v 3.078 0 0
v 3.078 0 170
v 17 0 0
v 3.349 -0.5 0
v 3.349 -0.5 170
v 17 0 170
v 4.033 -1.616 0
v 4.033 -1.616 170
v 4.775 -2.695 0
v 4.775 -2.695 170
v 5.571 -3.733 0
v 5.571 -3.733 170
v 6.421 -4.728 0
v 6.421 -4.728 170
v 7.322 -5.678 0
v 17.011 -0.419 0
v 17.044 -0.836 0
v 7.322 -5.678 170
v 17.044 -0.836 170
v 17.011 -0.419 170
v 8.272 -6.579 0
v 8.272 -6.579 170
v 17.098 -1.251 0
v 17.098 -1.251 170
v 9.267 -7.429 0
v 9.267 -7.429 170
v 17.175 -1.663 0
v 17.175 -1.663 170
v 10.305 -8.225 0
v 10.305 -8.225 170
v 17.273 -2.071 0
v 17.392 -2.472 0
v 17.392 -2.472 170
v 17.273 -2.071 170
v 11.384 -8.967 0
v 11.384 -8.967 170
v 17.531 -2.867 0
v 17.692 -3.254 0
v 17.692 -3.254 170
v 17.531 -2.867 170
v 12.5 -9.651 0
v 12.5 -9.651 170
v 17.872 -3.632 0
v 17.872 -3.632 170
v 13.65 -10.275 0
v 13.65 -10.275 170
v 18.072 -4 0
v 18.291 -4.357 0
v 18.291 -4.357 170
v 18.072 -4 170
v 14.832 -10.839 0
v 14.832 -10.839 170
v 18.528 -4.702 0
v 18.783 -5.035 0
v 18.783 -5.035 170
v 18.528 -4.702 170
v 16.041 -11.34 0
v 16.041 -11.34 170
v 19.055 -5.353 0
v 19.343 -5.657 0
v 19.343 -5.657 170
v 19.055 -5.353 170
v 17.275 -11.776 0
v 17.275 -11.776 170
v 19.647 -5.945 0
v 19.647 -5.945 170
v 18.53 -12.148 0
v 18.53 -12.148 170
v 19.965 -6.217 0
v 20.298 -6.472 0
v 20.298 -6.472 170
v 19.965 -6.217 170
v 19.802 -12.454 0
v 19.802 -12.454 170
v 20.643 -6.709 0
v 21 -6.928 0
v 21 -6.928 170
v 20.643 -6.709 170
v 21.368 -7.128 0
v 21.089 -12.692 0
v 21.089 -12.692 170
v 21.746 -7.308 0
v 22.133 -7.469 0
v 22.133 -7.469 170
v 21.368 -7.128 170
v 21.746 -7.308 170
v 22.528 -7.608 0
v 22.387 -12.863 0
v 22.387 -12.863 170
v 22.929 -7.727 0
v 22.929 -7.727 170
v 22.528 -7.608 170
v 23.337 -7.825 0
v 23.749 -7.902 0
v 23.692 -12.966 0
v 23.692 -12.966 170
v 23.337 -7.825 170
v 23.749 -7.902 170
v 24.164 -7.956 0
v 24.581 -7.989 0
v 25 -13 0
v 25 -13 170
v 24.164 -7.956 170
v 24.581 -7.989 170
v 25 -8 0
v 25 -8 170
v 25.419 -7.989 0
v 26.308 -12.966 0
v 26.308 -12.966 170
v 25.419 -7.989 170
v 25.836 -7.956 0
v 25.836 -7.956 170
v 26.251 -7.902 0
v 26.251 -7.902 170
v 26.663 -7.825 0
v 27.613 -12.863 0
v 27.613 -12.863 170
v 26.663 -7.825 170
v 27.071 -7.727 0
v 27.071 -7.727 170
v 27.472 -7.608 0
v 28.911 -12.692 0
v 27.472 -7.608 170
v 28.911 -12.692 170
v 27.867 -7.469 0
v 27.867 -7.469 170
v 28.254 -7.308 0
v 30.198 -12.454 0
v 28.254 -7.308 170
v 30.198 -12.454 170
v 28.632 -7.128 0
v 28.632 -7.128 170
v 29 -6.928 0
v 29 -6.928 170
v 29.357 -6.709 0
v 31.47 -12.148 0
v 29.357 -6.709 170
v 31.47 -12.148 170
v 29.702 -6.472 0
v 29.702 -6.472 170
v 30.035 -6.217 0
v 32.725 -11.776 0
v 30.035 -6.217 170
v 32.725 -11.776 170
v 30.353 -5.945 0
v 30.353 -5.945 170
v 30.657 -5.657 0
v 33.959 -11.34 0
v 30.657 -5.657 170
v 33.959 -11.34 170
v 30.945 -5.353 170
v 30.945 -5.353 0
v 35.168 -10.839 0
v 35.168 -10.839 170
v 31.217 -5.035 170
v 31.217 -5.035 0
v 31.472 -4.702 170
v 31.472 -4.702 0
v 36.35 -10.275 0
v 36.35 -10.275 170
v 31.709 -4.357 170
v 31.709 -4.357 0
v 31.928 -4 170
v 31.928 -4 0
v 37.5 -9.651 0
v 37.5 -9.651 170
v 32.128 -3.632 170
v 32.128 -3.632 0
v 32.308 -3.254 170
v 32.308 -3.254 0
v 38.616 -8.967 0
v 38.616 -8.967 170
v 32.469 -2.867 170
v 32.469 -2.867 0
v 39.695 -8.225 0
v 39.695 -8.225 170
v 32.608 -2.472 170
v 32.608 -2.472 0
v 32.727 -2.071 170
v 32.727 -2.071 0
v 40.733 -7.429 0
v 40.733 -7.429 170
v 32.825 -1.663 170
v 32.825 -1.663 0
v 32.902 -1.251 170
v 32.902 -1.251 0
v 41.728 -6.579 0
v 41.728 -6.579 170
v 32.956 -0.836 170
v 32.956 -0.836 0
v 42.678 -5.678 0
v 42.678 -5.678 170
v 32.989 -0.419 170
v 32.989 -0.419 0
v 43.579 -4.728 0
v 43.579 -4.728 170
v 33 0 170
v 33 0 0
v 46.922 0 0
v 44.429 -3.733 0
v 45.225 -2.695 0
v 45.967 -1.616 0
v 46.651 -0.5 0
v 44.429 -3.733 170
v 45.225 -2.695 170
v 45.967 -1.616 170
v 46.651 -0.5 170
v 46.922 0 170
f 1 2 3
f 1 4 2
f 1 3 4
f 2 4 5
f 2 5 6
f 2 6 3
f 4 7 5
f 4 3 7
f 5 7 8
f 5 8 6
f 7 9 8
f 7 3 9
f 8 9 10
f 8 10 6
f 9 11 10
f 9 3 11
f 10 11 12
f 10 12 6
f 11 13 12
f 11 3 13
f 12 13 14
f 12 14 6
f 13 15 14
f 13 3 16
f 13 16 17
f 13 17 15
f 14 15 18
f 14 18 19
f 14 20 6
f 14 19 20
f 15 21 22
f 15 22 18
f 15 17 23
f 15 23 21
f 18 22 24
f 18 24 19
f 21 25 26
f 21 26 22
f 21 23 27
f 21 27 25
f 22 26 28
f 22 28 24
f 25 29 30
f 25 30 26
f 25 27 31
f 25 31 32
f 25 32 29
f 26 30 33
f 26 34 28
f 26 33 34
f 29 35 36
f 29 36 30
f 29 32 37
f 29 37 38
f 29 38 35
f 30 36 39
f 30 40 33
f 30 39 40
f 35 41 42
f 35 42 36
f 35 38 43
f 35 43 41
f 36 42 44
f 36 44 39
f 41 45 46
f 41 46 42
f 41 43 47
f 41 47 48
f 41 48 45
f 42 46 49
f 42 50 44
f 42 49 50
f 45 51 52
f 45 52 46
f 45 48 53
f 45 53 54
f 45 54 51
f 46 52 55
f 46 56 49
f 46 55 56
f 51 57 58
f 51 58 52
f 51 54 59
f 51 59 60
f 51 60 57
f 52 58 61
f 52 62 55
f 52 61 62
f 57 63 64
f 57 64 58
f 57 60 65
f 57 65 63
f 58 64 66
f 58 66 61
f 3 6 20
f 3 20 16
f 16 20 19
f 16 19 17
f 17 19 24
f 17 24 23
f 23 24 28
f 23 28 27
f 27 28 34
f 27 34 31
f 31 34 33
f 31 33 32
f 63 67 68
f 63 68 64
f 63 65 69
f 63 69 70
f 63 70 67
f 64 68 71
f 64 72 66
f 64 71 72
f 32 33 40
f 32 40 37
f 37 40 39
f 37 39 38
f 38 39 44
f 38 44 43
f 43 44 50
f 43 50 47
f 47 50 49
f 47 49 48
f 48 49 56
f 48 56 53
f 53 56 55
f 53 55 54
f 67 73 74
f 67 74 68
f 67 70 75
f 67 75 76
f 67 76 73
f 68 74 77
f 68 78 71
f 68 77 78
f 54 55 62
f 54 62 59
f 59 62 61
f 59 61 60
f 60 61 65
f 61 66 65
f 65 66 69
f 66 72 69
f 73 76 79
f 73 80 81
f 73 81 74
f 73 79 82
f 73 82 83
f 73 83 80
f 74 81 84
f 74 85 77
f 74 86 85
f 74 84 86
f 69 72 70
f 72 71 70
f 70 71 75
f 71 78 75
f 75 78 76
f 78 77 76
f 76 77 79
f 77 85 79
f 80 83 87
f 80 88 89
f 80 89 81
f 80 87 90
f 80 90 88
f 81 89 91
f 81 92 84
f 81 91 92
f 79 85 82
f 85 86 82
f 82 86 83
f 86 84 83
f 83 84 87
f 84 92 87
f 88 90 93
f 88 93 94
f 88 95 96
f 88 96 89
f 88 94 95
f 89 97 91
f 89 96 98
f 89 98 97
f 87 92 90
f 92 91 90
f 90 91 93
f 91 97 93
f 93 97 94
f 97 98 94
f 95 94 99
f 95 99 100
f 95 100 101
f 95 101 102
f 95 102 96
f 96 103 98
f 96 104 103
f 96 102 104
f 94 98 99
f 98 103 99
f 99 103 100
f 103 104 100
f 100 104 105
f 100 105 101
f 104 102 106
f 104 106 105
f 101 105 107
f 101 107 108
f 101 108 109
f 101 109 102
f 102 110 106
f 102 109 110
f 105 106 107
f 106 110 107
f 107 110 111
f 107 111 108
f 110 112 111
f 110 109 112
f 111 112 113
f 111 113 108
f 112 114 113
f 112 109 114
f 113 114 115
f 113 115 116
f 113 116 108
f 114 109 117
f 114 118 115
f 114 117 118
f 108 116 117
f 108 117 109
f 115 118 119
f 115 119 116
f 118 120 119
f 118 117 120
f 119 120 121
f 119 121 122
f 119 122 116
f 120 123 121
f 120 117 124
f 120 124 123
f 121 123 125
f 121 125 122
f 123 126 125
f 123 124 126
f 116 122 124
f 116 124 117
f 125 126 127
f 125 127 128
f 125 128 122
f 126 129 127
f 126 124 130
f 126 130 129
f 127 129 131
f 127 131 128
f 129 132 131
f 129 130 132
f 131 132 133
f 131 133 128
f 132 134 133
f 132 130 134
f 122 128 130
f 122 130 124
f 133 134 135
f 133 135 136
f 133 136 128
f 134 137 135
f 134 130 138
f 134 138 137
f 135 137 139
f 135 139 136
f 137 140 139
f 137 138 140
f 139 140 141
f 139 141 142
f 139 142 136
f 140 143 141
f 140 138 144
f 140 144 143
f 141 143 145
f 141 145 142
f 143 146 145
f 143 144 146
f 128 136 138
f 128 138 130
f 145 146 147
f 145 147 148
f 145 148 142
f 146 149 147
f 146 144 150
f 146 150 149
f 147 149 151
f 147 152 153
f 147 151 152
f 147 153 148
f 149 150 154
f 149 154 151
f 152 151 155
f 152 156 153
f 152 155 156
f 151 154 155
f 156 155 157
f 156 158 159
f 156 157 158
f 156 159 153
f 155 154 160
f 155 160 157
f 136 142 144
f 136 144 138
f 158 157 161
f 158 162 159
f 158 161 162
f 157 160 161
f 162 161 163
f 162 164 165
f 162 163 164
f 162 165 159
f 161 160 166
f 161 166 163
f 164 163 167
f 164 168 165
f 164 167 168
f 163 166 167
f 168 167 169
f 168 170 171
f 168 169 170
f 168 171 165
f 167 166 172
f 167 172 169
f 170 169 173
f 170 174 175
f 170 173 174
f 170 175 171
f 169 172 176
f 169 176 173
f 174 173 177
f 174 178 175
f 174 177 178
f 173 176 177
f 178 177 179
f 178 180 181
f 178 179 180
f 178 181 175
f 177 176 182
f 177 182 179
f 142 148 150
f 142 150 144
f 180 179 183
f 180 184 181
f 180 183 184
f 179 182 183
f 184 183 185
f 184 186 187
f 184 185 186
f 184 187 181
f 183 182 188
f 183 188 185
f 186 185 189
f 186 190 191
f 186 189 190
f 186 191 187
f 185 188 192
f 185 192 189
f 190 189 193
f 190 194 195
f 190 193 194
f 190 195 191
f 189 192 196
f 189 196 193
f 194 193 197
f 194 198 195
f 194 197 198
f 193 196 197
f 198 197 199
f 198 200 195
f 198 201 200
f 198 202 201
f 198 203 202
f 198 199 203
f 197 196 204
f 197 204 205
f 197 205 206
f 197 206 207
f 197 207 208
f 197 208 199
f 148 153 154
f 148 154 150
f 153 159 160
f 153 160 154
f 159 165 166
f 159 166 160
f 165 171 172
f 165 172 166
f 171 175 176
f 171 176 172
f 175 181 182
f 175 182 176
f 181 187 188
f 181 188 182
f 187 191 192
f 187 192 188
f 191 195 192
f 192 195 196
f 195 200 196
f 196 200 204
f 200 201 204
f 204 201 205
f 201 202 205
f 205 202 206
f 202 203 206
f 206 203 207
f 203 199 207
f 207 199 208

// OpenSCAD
// cable duct 
// 01.10.2025 Sebastian Weigl

$fn=120;

difference(){

translate([25,12,0])
cylinder(d=50,h=170);

translate([25,0,0])
cylinder(d=16,h=170);

cube([60,50,175]);
}
